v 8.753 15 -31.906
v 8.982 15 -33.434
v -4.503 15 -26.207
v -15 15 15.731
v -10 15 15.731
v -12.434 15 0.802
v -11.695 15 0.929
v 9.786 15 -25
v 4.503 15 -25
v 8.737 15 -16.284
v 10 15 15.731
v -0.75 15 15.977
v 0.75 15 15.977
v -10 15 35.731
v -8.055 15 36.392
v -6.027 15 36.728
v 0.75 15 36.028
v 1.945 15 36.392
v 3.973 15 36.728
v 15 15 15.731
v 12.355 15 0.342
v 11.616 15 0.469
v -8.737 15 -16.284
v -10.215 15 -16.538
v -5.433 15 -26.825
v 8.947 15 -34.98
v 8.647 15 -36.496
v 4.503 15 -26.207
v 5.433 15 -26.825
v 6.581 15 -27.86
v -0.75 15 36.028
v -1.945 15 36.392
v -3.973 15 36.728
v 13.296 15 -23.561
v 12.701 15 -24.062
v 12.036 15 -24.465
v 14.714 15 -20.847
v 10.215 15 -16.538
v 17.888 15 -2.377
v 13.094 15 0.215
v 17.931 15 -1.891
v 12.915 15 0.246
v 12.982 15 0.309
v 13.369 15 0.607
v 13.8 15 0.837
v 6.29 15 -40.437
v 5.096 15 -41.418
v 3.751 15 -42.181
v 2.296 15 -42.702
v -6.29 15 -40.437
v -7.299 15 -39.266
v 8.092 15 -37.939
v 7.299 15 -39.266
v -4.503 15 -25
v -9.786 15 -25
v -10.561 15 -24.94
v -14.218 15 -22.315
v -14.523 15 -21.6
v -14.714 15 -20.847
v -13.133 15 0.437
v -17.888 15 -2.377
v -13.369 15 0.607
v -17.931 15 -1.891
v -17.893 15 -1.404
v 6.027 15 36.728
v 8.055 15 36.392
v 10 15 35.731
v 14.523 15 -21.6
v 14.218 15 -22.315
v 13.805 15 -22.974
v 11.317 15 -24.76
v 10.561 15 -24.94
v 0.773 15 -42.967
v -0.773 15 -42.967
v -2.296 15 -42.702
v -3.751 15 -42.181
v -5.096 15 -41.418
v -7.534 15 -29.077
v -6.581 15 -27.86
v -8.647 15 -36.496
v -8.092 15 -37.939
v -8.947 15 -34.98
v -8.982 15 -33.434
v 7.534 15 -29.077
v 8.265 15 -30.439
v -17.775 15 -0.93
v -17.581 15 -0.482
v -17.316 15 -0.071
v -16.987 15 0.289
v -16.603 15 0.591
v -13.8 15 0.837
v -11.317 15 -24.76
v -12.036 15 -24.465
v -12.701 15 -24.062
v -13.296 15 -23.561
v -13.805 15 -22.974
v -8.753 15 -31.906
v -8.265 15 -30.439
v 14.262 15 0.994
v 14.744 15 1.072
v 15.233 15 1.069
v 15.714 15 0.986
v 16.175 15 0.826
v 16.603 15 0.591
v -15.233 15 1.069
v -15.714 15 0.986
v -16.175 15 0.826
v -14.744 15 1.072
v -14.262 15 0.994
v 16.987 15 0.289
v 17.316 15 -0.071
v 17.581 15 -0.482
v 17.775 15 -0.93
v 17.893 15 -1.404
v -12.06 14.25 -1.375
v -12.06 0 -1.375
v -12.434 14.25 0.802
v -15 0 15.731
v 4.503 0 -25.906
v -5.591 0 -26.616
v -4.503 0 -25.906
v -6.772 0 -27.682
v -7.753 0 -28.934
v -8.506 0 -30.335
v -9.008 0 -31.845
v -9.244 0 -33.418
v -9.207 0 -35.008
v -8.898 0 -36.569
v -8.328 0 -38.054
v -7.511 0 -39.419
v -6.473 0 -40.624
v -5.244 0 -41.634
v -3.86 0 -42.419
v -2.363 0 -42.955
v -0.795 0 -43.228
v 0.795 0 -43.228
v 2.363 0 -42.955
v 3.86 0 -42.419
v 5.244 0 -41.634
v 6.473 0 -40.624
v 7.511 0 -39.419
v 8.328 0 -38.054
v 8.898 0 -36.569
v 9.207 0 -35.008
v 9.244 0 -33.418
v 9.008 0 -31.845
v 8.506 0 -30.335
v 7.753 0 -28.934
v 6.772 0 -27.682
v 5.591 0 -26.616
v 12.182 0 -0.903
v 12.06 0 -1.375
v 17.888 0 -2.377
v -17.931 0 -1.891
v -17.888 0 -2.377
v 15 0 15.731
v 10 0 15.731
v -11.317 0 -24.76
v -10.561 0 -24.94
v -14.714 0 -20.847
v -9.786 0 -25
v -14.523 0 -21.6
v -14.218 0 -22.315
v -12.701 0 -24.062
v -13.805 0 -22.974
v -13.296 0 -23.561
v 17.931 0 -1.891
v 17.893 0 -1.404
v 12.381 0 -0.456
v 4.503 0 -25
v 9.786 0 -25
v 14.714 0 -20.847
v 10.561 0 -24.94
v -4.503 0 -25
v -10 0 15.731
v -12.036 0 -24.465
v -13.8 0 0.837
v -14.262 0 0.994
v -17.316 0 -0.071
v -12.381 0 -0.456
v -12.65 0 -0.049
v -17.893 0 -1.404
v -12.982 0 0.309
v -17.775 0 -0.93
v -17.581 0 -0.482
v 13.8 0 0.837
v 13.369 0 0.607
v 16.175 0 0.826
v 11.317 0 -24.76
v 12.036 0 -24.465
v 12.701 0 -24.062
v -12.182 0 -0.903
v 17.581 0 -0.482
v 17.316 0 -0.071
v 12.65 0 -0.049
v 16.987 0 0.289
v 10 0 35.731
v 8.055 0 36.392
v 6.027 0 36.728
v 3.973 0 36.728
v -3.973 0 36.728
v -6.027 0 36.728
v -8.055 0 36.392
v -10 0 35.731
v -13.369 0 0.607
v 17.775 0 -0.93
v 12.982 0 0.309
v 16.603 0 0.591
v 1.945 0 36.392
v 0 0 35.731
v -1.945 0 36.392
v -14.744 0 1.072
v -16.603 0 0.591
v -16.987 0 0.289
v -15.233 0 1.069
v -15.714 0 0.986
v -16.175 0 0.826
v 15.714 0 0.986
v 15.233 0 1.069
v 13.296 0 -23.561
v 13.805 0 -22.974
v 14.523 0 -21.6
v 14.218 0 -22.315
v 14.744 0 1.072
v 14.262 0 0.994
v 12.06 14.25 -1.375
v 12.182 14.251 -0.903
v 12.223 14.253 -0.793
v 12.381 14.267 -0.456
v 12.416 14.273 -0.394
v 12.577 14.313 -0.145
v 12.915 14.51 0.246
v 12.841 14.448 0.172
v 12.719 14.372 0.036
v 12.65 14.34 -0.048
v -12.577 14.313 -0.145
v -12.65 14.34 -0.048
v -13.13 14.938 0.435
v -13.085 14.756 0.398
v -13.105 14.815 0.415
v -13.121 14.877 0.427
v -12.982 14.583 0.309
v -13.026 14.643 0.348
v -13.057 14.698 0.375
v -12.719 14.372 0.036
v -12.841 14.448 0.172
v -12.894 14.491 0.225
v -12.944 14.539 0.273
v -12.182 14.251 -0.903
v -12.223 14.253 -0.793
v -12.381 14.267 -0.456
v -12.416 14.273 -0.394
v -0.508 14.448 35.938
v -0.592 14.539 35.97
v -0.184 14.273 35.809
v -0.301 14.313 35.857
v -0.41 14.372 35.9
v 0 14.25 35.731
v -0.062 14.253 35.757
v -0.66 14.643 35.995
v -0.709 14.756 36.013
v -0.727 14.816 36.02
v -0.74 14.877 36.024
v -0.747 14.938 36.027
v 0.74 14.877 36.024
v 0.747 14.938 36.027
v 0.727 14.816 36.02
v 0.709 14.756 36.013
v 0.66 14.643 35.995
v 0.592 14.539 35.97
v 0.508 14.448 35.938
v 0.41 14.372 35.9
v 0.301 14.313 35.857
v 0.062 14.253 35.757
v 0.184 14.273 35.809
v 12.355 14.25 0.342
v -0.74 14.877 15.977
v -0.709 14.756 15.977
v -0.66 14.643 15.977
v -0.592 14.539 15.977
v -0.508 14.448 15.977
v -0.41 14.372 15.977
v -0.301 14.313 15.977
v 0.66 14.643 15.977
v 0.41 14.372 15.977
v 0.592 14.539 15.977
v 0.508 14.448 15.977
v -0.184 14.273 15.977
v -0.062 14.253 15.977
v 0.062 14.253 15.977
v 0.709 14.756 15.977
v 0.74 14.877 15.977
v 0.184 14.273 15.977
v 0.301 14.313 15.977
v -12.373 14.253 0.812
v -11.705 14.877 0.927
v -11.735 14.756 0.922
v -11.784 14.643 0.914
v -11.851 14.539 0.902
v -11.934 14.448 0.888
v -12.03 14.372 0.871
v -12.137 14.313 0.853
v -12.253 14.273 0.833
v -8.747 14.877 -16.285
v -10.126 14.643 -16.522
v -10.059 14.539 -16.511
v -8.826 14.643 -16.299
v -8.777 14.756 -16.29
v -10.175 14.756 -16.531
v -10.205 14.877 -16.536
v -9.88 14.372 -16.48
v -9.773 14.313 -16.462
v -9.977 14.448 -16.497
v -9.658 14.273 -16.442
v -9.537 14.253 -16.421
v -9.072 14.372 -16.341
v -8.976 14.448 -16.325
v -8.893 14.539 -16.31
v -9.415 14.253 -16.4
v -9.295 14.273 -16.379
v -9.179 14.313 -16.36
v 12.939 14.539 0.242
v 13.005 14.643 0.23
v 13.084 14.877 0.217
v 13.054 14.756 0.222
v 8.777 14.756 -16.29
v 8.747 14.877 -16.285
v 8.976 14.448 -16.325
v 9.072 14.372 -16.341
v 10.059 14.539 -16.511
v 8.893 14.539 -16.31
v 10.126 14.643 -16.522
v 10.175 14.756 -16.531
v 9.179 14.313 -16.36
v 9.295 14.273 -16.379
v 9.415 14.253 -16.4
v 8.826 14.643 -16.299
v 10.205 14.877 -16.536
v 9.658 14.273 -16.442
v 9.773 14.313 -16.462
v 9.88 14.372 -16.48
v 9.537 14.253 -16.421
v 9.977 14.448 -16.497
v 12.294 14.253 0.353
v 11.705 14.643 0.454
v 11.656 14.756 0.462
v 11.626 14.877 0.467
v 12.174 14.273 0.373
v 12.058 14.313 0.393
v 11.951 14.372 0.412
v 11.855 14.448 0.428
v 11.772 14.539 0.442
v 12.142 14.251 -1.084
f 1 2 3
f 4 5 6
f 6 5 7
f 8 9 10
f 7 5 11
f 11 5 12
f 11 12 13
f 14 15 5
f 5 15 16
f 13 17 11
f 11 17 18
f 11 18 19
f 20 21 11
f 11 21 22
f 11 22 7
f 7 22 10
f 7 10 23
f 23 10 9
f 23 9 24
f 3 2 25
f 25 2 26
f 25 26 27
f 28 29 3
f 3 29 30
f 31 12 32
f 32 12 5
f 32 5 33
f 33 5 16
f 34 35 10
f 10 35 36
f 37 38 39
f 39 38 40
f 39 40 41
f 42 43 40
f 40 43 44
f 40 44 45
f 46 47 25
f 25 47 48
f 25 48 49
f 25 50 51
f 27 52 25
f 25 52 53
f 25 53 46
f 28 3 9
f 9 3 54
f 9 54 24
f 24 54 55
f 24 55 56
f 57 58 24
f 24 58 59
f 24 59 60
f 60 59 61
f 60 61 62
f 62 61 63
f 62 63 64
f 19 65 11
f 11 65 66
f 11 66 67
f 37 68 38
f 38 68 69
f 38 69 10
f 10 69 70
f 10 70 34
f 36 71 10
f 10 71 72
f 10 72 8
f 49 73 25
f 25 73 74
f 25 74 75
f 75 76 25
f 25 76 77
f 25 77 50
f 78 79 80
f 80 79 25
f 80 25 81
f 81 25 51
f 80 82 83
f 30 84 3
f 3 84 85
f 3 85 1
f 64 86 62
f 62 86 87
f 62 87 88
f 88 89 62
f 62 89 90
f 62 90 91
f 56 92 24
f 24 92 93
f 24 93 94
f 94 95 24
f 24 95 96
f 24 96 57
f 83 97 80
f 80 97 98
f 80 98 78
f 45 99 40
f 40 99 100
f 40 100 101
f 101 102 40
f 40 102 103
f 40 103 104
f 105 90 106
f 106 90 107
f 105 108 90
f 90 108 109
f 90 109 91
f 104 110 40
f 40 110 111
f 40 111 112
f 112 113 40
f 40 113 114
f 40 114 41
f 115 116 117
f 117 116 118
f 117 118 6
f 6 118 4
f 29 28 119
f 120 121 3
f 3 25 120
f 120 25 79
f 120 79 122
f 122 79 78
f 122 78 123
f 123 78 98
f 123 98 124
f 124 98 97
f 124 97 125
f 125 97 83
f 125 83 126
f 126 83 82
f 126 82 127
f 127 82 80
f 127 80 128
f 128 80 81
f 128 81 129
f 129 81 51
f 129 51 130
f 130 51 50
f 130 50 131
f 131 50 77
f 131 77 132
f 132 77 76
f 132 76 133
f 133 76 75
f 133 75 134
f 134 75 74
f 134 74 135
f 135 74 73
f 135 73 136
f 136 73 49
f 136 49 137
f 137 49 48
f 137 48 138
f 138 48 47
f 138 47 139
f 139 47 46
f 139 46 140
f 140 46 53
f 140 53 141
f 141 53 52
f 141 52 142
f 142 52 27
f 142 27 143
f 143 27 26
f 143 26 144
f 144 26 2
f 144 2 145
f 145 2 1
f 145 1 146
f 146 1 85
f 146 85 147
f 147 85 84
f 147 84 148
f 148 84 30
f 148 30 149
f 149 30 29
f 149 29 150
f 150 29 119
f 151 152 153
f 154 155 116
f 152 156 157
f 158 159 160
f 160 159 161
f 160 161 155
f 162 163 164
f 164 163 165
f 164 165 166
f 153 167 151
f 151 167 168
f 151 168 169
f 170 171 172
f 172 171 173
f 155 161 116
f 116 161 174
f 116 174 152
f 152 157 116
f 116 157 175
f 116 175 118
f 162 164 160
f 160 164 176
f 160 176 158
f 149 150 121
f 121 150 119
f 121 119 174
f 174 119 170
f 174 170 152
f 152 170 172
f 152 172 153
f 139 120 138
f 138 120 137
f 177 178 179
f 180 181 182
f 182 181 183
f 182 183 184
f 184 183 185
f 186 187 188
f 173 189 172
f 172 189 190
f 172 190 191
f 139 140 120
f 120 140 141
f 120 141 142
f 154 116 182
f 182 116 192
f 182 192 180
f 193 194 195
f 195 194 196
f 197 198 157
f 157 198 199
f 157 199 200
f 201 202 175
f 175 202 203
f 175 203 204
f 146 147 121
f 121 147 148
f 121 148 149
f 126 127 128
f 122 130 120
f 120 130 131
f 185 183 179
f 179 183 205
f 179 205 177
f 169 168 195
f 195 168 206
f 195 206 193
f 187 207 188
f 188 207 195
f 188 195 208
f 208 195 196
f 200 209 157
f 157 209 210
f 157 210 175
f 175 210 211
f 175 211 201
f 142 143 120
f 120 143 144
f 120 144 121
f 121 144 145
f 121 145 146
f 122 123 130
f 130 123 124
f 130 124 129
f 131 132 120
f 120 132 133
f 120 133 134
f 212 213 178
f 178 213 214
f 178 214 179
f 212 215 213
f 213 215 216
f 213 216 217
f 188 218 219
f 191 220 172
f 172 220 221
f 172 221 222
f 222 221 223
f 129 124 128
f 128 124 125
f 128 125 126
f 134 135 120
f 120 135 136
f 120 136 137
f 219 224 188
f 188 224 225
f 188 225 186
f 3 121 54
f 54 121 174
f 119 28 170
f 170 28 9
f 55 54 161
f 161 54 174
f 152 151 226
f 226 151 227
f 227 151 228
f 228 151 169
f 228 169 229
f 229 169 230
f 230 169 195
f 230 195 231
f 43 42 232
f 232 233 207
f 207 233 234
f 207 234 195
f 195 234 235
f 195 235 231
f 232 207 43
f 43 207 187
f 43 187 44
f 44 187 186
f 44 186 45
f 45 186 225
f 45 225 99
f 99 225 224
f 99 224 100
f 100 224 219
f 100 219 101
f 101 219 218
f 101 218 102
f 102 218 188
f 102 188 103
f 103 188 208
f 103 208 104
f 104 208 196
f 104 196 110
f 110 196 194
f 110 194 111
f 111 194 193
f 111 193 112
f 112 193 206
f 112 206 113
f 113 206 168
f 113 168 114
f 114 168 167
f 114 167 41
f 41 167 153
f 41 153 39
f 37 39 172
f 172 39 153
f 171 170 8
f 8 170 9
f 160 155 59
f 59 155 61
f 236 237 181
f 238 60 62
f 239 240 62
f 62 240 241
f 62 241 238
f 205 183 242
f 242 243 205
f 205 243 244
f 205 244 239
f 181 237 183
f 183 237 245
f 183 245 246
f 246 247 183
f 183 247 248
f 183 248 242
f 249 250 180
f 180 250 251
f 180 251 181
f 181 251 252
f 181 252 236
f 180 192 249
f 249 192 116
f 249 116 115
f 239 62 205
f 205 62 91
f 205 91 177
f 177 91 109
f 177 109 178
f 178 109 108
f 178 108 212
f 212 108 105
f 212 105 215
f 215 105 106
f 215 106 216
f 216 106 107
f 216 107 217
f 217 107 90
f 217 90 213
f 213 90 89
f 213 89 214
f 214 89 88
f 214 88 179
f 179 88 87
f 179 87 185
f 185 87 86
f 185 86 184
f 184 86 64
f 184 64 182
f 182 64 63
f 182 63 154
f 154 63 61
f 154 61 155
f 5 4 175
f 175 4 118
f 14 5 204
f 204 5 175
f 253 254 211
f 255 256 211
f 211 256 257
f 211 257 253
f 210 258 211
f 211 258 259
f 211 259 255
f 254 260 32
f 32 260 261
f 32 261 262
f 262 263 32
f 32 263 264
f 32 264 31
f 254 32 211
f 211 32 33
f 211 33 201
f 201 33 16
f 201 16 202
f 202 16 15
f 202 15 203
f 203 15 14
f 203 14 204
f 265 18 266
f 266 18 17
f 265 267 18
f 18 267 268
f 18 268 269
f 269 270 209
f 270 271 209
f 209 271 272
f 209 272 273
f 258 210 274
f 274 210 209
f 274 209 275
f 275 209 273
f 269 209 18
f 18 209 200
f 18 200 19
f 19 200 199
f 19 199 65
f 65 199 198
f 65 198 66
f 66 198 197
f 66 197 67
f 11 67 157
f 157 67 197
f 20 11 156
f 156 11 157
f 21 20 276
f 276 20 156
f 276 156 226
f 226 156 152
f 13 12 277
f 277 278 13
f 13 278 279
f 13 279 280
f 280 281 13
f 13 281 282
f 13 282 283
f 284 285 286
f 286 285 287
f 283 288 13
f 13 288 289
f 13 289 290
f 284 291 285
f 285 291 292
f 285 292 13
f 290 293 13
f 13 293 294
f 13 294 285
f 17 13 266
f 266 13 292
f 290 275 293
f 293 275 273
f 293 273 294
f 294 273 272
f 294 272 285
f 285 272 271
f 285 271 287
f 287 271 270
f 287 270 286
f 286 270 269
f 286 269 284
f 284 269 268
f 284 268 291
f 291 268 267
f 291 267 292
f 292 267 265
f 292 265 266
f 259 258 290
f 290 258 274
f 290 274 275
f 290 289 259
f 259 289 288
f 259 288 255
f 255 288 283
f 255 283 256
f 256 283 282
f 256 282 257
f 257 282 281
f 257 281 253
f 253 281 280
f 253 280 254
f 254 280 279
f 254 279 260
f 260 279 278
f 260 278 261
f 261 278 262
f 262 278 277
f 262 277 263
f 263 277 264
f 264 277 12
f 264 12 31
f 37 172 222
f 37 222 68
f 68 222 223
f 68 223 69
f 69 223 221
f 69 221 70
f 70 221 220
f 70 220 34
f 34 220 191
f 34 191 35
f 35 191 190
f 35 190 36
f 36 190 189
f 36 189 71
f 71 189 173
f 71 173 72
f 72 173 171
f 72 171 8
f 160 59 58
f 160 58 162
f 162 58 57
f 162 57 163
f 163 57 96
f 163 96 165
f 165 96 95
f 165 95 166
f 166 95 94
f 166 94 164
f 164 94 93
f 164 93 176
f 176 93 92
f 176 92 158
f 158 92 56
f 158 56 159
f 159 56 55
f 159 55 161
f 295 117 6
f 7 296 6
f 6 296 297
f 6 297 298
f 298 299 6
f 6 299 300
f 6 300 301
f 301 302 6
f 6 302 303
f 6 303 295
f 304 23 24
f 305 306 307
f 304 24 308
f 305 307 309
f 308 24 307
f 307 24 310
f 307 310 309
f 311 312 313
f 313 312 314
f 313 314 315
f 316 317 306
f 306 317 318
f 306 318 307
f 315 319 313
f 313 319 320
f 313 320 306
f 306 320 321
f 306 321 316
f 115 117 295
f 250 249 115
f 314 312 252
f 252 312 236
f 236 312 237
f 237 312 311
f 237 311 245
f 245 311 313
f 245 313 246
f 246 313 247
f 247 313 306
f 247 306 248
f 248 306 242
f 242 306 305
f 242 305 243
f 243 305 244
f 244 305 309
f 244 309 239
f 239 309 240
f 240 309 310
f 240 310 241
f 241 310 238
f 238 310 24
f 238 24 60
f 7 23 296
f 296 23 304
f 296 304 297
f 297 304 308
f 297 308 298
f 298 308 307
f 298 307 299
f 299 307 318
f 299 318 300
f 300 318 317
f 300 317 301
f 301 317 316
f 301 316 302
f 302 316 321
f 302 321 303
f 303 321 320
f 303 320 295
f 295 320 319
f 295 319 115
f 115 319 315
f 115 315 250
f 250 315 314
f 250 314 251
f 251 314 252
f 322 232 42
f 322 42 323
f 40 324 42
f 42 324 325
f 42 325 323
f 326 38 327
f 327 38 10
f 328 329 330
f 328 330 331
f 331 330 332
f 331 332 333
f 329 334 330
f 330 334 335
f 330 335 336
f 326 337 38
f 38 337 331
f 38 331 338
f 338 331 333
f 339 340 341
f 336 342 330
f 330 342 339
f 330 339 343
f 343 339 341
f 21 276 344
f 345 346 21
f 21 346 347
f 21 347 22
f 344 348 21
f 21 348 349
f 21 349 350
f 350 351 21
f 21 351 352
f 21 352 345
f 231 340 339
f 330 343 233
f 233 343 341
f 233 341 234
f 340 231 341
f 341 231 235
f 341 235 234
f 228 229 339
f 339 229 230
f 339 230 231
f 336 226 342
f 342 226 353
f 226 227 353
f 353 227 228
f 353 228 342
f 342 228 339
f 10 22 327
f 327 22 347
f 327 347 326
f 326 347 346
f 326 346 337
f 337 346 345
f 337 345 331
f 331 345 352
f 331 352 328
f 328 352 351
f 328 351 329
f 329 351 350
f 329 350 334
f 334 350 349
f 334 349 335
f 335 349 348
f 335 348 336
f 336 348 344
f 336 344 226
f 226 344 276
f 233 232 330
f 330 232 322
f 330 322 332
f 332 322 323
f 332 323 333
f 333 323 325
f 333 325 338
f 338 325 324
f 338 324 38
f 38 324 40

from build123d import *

# Parameters (mm, degrees)
CROQUIS1_R               = 9
SALIENTE_EXTRUIR1_DEPTH  = 15
CORTAR_BARRER3_PROFILE_R = 0.75
CROQUIS150_W             = 9.005753034
CROQUIS150_H             = 1.22445073
SALIENTE_EXTRUIR2_DEPTH  = 15
NGULO_DE_SALIDA1_ANGLE   = 1
REDONDEO1_R              = 5
CORTAR_BARRER6_PROFILE_R = 0.75
CORTAR_BARRER7_PROFILE_R = 0.75


with BuildPart() as part:
    # Croquis1 → Saliente-Extruir1 (new body)
    with BuildSketch(Plane(origin=(0, 0, 0), x_dir=(1, 0, 0), z_dir=(0, 1, 0))):
        with BuildLine():
            Line((-10, -15.730529609), (-10, -35.730529609))
            ThreePointArc((-10, -35.730529609), (-5, -36.769633088), (0, -35.730529609))
            ThreePointArc((0, -35.730529609), (5, -36.769633088), (10, -35.730529609))
            Line((10, -35.730529609), (10, -15.730529609))
            Line((10, -15.730529609), (15, -15.730529609))
            Line((15, -15.730529609), (12.060158198, 1.375372328))
            ThreePointArc((12.060158198, 1.375372328), (15.474883642, -1.037768667), (17.888024636, 2.376956777))
            Line((17.888024636, 2.376956777), (14, 25))
            Line((14, 25), (9, 25))
            Line((9, 25), (3.3e-08, 25))
            Line((3.3e-08, 25), (-9, 25))
            Line((-9, 25), (-14, 25))
            Line((-14, 25), (-17.888024636, 2.376956777))
            ThreePointArc((-17.888024636, 2.376956777), (-15.474883642, -1.037768667), (-12.060158198, 1.375372328))
            Line((-12.060158198, 1.375372328), (-15, -15.730529609))
            Line((-15, -15.730529609), (-10, -15.730529609))
        make_face()
        with Locations(Location((0, 34, 0), (0, 0, 270))):
            Circle(CROQUIS1_R)
    extrude(amount=SALIENTE_EXTRUIR1_DEPTH)

    # Cortar-Barrer3: sweep along a path in Croquis128
    with BuildLine(Plane(origin=(0, 15, 0), x_dir=(1, 0, 0), z_dir=(0, 1, 0))) as cortar_barrer3_path:
        Line((0, -37.988500145), (0, -15.977369951))
    # Cortar-Barrer3 profile (on start of the path) → Cortar-Barrer3 (sweep, cut)
    with BuildSketch(Plane(origin=(0, 15, 37.988500145), x_dir=(-1, 0, 0), z_dir=(0, 0, -1))):
        Circle(CORTAR_BARRER3_PROFILE_R)
    sweep(path=cortar_barrer3_path.line, mode=Mode.SUBTRACT)

    # Croquis150 → Saliente-Extruir2 (add)
    with BuildSketch(Plane(origin=(0, 15, 0), x_dir=(1, 0, 0), z_dir=(0, 1, 0))):
        with Locations((0, 25.595207467)):
            Rectangle(CROQUIS150_W, CROQUIS150_H)
    extrude(amount=-SALIENTE_EXTRUIR2_DEPTH)

    # Ángulo de salida1
    ngulo_de_salida1_faces = [part.faces().sort_by_distance(p)[0] for p in [
        (0, 7.5, -43),
    ]]
    draft(ngulo_de_salida1_faces, Plane.ZX.offset(15), NGULO_DE_SALIDA1_ANGLE)

    # Redondeo1
    redondeo1_edges = [part.edges().sort_by_distance(p)[0] for p in [
        (14, 7.5, -25),
        (-14, 7.5, -25),
    ]]
    fillet(redondeo1_edges, radius=REDONDEO1_R)

    # Cortar-Barrer6: sweep along a path in Croquis153
    with BuildLine(Plane(origin=(0, 15, 0), x_dir=(1, 0, 0), z_dir=(0, 1, 0))) as cortar_barrer6_path:
        Line((-12.434351293, -0.801925236), (-9.476182309, 16.410616107))
    # Cortar-Barrer6 profile (on start of the path) → Cortar-Barrer6 (sweep, cut)
    with BuildSketch(Plane(origin=(-12.434351293, 15, 0.801925236), x_dir=(-0.9855511518924236, 0, -0.1693780593923461), z_dir=(0.1693780593923461, 0, -0.9855511518924236))):
        Circle(CORTAR_BARRER6_PROFILE_R)
    sweep(path=cortar_barrer6_path.line, mode=Mode.SUBTRACT)

    # Cortar-Barrer7: sweep along a path in Croquis222
    with BuildLine(Plane(origin=(0, 15, 0), x_dir=(1, 0, 0), z_dir=(0, 1, 0))) as cortar_barrer7_path:
        Line((9.476182309, 16.410616107), (12.355325185, -0.342100199))
    # Cortar-Barrer7 profile (on start of the path) → Cortar-Barrer7 (sweep, cut)
    with BuildSketch(Plane(origin=(9.476182309, 15, -16.410616107), x_dir=(0.9855511518924236, 0, -0.16937805939234624), z_dir=(0.16937805939234624, 0, 0.9855511518924236))):
        Circle(CORTAR_BARRER7_PROFILE_R)
    sweep(path=cortar_barrer7_path.line, mode=Mode.SUBTRACT)


solid = part.part
